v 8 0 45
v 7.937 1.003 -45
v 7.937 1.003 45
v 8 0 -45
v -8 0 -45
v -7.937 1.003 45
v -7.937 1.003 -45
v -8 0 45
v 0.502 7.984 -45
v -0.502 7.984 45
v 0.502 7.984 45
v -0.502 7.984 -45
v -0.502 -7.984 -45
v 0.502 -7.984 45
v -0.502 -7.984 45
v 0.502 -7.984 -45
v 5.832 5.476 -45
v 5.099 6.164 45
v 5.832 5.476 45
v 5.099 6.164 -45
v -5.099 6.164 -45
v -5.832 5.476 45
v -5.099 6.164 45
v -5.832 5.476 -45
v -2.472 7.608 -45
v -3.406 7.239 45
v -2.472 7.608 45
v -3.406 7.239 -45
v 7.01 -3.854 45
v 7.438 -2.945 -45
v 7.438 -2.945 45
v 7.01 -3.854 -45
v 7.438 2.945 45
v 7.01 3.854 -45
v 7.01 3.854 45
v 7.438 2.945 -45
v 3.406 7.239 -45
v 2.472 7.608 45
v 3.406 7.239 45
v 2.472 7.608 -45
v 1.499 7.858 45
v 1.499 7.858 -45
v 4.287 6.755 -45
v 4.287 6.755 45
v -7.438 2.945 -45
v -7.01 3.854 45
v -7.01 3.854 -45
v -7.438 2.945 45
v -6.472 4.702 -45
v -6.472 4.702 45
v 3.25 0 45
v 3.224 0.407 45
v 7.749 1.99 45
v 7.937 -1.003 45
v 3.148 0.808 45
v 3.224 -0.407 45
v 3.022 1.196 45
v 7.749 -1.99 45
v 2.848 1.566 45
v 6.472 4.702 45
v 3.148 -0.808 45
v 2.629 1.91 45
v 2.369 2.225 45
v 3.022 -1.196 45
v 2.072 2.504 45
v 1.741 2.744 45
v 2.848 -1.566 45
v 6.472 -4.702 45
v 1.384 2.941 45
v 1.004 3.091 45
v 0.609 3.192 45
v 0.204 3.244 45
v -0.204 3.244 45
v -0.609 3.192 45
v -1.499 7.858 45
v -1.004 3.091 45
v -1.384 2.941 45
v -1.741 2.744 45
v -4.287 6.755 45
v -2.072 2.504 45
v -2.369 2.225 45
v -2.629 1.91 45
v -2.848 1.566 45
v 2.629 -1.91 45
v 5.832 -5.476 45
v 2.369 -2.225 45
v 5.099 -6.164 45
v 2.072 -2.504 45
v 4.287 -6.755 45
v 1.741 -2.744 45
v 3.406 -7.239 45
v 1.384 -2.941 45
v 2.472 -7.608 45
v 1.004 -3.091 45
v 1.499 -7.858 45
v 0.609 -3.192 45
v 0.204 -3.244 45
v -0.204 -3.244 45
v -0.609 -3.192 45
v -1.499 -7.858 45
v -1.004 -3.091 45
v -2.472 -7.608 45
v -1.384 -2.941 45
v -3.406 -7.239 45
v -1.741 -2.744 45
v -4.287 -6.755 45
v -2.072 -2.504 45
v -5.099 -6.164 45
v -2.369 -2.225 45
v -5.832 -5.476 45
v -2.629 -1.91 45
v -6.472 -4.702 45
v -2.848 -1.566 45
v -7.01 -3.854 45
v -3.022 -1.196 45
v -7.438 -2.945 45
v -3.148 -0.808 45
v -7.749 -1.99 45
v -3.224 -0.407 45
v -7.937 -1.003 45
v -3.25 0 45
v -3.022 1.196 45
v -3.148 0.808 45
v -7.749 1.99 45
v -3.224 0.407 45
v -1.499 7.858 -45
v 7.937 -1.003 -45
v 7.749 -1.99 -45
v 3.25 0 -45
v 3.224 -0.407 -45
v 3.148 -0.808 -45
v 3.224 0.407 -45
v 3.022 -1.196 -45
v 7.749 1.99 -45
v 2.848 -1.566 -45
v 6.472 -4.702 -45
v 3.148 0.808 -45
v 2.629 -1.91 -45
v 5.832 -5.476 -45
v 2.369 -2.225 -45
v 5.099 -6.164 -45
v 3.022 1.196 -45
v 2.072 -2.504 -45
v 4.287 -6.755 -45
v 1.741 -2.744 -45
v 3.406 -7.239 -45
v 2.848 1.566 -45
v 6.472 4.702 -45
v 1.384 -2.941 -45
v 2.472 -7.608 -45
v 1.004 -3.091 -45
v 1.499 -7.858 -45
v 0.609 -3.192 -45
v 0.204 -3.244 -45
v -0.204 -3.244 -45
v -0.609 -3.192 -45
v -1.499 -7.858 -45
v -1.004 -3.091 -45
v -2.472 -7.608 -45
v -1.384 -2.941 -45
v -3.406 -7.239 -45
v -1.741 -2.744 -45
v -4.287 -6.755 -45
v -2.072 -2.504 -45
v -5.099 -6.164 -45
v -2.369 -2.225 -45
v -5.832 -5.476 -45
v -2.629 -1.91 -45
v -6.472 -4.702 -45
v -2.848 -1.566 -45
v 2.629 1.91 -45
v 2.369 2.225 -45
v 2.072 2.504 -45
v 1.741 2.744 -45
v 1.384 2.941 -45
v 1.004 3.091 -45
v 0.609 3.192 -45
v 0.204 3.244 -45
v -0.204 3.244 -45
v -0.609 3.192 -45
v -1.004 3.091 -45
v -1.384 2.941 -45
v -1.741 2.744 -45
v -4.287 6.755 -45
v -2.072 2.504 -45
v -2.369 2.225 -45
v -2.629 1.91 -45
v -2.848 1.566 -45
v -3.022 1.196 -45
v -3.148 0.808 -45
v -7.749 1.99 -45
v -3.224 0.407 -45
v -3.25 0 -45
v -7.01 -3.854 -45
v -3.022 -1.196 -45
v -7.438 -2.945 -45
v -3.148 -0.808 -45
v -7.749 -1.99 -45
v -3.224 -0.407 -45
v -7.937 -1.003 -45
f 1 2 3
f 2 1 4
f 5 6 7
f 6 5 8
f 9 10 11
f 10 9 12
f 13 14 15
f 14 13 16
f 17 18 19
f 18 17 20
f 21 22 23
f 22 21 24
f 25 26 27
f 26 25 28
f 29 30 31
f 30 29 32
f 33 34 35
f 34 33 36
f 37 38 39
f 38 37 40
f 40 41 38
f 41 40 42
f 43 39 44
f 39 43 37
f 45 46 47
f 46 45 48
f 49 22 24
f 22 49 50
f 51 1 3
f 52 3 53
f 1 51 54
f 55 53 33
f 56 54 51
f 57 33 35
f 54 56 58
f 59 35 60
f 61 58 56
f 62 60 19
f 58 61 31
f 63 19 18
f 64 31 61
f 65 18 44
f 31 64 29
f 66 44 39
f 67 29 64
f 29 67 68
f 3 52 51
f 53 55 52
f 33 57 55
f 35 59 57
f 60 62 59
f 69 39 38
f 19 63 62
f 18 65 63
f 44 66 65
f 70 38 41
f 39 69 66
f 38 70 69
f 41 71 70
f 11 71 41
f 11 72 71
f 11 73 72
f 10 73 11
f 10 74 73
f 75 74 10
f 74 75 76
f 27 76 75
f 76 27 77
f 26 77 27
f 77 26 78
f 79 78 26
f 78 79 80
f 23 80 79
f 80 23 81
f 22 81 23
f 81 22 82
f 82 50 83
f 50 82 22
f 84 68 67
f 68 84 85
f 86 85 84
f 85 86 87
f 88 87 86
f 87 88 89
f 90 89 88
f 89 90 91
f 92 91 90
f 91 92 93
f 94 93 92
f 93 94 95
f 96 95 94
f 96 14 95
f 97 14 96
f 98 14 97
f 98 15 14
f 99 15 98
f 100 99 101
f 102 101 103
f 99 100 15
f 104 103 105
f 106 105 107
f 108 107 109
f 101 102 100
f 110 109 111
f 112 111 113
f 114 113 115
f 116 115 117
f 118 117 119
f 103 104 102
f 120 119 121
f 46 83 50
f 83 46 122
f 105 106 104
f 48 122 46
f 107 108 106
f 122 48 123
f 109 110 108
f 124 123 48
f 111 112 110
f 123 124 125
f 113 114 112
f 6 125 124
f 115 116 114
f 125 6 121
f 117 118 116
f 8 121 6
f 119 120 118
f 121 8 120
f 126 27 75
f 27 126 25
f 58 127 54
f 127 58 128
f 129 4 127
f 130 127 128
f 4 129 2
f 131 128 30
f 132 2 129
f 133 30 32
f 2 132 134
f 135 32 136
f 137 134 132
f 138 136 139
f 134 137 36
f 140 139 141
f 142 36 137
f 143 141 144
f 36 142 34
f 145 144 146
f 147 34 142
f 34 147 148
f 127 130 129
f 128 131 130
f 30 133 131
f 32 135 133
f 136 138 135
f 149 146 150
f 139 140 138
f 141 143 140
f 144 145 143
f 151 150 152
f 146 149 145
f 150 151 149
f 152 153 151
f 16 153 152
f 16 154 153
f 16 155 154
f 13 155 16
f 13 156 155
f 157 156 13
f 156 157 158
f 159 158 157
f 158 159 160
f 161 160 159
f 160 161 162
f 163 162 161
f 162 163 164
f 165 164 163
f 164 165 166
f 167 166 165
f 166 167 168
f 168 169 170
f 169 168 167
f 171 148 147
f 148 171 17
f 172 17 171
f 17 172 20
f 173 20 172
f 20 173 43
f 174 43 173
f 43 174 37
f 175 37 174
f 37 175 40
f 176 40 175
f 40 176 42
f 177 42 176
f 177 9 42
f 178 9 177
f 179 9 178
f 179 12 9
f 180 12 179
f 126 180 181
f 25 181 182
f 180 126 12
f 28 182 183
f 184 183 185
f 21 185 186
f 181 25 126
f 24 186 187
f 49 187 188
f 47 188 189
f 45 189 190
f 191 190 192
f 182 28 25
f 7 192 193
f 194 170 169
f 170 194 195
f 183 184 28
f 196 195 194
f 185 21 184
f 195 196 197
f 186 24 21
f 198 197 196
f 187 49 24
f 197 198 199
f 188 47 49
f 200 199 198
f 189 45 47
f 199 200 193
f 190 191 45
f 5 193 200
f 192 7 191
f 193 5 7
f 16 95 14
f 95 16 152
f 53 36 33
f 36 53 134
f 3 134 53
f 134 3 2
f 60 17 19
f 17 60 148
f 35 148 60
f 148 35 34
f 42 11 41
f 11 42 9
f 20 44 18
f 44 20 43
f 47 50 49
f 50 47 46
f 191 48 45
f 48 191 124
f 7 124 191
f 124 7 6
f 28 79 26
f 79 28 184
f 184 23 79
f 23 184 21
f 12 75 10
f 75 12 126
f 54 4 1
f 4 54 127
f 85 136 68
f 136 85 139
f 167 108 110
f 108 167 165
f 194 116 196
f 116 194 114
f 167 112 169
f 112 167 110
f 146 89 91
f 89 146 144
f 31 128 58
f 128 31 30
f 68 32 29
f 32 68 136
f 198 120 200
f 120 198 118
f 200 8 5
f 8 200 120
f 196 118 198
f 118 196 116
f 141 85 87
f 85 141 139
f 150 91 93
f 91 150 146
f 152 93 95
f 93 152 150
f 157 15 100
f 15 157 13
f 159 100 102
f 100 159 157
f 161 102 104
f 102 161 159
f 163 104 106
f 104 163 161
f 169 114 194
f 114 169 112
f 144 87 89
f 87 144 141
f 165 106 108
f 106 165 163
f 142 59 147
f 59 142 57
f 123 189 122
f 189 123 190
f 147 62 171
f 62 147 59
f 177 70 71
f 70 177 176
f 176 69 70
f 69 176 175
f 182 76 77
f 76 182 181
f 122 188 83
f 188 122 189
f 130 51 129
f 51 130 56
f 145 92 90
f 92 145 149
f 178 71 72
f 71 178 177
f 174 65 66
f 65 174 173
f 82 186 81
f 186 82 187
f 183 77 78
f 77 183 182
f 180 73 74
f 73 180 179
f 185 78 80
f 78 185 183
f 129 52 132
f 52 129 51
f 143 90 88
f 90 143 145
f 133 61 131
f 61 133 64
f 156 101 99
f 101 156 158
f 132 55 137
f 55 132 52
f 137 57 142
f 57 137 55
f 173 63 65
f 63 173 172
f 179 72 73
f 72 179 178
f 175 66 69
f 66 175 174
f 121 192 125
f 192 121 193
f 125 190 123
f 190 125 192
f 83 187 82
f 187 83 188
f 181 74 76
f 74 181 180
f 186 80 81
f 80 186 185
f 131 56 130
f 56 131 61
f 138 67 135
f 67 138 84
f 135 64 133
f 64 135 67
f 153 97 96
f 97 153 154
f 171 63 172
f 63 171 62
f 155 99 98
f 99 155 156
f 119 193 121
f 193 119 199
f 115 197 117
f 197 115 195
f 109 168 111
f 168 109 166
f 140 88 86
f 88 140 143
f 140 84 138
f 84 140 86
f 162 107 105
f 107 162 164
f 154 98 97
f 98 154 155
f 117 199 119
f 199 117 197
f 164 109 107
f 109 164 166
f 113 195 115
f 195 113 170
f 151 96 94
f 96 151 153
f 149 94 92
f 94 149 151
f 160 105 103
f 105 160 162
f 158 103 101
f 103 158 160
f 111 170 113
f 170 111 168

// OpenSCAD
$fn = 50;


difference() {
	union() {
		translate(v = [0, 0, -45.0000000000]) {
			cylinder(h = 90, r = 8.0000000000);
		}
	}
	union() {
		translate(v = [0, 0, -100.0000000000]) {
			cylinder(h = 200, r = 3.2500000000);
		}
	}
}
